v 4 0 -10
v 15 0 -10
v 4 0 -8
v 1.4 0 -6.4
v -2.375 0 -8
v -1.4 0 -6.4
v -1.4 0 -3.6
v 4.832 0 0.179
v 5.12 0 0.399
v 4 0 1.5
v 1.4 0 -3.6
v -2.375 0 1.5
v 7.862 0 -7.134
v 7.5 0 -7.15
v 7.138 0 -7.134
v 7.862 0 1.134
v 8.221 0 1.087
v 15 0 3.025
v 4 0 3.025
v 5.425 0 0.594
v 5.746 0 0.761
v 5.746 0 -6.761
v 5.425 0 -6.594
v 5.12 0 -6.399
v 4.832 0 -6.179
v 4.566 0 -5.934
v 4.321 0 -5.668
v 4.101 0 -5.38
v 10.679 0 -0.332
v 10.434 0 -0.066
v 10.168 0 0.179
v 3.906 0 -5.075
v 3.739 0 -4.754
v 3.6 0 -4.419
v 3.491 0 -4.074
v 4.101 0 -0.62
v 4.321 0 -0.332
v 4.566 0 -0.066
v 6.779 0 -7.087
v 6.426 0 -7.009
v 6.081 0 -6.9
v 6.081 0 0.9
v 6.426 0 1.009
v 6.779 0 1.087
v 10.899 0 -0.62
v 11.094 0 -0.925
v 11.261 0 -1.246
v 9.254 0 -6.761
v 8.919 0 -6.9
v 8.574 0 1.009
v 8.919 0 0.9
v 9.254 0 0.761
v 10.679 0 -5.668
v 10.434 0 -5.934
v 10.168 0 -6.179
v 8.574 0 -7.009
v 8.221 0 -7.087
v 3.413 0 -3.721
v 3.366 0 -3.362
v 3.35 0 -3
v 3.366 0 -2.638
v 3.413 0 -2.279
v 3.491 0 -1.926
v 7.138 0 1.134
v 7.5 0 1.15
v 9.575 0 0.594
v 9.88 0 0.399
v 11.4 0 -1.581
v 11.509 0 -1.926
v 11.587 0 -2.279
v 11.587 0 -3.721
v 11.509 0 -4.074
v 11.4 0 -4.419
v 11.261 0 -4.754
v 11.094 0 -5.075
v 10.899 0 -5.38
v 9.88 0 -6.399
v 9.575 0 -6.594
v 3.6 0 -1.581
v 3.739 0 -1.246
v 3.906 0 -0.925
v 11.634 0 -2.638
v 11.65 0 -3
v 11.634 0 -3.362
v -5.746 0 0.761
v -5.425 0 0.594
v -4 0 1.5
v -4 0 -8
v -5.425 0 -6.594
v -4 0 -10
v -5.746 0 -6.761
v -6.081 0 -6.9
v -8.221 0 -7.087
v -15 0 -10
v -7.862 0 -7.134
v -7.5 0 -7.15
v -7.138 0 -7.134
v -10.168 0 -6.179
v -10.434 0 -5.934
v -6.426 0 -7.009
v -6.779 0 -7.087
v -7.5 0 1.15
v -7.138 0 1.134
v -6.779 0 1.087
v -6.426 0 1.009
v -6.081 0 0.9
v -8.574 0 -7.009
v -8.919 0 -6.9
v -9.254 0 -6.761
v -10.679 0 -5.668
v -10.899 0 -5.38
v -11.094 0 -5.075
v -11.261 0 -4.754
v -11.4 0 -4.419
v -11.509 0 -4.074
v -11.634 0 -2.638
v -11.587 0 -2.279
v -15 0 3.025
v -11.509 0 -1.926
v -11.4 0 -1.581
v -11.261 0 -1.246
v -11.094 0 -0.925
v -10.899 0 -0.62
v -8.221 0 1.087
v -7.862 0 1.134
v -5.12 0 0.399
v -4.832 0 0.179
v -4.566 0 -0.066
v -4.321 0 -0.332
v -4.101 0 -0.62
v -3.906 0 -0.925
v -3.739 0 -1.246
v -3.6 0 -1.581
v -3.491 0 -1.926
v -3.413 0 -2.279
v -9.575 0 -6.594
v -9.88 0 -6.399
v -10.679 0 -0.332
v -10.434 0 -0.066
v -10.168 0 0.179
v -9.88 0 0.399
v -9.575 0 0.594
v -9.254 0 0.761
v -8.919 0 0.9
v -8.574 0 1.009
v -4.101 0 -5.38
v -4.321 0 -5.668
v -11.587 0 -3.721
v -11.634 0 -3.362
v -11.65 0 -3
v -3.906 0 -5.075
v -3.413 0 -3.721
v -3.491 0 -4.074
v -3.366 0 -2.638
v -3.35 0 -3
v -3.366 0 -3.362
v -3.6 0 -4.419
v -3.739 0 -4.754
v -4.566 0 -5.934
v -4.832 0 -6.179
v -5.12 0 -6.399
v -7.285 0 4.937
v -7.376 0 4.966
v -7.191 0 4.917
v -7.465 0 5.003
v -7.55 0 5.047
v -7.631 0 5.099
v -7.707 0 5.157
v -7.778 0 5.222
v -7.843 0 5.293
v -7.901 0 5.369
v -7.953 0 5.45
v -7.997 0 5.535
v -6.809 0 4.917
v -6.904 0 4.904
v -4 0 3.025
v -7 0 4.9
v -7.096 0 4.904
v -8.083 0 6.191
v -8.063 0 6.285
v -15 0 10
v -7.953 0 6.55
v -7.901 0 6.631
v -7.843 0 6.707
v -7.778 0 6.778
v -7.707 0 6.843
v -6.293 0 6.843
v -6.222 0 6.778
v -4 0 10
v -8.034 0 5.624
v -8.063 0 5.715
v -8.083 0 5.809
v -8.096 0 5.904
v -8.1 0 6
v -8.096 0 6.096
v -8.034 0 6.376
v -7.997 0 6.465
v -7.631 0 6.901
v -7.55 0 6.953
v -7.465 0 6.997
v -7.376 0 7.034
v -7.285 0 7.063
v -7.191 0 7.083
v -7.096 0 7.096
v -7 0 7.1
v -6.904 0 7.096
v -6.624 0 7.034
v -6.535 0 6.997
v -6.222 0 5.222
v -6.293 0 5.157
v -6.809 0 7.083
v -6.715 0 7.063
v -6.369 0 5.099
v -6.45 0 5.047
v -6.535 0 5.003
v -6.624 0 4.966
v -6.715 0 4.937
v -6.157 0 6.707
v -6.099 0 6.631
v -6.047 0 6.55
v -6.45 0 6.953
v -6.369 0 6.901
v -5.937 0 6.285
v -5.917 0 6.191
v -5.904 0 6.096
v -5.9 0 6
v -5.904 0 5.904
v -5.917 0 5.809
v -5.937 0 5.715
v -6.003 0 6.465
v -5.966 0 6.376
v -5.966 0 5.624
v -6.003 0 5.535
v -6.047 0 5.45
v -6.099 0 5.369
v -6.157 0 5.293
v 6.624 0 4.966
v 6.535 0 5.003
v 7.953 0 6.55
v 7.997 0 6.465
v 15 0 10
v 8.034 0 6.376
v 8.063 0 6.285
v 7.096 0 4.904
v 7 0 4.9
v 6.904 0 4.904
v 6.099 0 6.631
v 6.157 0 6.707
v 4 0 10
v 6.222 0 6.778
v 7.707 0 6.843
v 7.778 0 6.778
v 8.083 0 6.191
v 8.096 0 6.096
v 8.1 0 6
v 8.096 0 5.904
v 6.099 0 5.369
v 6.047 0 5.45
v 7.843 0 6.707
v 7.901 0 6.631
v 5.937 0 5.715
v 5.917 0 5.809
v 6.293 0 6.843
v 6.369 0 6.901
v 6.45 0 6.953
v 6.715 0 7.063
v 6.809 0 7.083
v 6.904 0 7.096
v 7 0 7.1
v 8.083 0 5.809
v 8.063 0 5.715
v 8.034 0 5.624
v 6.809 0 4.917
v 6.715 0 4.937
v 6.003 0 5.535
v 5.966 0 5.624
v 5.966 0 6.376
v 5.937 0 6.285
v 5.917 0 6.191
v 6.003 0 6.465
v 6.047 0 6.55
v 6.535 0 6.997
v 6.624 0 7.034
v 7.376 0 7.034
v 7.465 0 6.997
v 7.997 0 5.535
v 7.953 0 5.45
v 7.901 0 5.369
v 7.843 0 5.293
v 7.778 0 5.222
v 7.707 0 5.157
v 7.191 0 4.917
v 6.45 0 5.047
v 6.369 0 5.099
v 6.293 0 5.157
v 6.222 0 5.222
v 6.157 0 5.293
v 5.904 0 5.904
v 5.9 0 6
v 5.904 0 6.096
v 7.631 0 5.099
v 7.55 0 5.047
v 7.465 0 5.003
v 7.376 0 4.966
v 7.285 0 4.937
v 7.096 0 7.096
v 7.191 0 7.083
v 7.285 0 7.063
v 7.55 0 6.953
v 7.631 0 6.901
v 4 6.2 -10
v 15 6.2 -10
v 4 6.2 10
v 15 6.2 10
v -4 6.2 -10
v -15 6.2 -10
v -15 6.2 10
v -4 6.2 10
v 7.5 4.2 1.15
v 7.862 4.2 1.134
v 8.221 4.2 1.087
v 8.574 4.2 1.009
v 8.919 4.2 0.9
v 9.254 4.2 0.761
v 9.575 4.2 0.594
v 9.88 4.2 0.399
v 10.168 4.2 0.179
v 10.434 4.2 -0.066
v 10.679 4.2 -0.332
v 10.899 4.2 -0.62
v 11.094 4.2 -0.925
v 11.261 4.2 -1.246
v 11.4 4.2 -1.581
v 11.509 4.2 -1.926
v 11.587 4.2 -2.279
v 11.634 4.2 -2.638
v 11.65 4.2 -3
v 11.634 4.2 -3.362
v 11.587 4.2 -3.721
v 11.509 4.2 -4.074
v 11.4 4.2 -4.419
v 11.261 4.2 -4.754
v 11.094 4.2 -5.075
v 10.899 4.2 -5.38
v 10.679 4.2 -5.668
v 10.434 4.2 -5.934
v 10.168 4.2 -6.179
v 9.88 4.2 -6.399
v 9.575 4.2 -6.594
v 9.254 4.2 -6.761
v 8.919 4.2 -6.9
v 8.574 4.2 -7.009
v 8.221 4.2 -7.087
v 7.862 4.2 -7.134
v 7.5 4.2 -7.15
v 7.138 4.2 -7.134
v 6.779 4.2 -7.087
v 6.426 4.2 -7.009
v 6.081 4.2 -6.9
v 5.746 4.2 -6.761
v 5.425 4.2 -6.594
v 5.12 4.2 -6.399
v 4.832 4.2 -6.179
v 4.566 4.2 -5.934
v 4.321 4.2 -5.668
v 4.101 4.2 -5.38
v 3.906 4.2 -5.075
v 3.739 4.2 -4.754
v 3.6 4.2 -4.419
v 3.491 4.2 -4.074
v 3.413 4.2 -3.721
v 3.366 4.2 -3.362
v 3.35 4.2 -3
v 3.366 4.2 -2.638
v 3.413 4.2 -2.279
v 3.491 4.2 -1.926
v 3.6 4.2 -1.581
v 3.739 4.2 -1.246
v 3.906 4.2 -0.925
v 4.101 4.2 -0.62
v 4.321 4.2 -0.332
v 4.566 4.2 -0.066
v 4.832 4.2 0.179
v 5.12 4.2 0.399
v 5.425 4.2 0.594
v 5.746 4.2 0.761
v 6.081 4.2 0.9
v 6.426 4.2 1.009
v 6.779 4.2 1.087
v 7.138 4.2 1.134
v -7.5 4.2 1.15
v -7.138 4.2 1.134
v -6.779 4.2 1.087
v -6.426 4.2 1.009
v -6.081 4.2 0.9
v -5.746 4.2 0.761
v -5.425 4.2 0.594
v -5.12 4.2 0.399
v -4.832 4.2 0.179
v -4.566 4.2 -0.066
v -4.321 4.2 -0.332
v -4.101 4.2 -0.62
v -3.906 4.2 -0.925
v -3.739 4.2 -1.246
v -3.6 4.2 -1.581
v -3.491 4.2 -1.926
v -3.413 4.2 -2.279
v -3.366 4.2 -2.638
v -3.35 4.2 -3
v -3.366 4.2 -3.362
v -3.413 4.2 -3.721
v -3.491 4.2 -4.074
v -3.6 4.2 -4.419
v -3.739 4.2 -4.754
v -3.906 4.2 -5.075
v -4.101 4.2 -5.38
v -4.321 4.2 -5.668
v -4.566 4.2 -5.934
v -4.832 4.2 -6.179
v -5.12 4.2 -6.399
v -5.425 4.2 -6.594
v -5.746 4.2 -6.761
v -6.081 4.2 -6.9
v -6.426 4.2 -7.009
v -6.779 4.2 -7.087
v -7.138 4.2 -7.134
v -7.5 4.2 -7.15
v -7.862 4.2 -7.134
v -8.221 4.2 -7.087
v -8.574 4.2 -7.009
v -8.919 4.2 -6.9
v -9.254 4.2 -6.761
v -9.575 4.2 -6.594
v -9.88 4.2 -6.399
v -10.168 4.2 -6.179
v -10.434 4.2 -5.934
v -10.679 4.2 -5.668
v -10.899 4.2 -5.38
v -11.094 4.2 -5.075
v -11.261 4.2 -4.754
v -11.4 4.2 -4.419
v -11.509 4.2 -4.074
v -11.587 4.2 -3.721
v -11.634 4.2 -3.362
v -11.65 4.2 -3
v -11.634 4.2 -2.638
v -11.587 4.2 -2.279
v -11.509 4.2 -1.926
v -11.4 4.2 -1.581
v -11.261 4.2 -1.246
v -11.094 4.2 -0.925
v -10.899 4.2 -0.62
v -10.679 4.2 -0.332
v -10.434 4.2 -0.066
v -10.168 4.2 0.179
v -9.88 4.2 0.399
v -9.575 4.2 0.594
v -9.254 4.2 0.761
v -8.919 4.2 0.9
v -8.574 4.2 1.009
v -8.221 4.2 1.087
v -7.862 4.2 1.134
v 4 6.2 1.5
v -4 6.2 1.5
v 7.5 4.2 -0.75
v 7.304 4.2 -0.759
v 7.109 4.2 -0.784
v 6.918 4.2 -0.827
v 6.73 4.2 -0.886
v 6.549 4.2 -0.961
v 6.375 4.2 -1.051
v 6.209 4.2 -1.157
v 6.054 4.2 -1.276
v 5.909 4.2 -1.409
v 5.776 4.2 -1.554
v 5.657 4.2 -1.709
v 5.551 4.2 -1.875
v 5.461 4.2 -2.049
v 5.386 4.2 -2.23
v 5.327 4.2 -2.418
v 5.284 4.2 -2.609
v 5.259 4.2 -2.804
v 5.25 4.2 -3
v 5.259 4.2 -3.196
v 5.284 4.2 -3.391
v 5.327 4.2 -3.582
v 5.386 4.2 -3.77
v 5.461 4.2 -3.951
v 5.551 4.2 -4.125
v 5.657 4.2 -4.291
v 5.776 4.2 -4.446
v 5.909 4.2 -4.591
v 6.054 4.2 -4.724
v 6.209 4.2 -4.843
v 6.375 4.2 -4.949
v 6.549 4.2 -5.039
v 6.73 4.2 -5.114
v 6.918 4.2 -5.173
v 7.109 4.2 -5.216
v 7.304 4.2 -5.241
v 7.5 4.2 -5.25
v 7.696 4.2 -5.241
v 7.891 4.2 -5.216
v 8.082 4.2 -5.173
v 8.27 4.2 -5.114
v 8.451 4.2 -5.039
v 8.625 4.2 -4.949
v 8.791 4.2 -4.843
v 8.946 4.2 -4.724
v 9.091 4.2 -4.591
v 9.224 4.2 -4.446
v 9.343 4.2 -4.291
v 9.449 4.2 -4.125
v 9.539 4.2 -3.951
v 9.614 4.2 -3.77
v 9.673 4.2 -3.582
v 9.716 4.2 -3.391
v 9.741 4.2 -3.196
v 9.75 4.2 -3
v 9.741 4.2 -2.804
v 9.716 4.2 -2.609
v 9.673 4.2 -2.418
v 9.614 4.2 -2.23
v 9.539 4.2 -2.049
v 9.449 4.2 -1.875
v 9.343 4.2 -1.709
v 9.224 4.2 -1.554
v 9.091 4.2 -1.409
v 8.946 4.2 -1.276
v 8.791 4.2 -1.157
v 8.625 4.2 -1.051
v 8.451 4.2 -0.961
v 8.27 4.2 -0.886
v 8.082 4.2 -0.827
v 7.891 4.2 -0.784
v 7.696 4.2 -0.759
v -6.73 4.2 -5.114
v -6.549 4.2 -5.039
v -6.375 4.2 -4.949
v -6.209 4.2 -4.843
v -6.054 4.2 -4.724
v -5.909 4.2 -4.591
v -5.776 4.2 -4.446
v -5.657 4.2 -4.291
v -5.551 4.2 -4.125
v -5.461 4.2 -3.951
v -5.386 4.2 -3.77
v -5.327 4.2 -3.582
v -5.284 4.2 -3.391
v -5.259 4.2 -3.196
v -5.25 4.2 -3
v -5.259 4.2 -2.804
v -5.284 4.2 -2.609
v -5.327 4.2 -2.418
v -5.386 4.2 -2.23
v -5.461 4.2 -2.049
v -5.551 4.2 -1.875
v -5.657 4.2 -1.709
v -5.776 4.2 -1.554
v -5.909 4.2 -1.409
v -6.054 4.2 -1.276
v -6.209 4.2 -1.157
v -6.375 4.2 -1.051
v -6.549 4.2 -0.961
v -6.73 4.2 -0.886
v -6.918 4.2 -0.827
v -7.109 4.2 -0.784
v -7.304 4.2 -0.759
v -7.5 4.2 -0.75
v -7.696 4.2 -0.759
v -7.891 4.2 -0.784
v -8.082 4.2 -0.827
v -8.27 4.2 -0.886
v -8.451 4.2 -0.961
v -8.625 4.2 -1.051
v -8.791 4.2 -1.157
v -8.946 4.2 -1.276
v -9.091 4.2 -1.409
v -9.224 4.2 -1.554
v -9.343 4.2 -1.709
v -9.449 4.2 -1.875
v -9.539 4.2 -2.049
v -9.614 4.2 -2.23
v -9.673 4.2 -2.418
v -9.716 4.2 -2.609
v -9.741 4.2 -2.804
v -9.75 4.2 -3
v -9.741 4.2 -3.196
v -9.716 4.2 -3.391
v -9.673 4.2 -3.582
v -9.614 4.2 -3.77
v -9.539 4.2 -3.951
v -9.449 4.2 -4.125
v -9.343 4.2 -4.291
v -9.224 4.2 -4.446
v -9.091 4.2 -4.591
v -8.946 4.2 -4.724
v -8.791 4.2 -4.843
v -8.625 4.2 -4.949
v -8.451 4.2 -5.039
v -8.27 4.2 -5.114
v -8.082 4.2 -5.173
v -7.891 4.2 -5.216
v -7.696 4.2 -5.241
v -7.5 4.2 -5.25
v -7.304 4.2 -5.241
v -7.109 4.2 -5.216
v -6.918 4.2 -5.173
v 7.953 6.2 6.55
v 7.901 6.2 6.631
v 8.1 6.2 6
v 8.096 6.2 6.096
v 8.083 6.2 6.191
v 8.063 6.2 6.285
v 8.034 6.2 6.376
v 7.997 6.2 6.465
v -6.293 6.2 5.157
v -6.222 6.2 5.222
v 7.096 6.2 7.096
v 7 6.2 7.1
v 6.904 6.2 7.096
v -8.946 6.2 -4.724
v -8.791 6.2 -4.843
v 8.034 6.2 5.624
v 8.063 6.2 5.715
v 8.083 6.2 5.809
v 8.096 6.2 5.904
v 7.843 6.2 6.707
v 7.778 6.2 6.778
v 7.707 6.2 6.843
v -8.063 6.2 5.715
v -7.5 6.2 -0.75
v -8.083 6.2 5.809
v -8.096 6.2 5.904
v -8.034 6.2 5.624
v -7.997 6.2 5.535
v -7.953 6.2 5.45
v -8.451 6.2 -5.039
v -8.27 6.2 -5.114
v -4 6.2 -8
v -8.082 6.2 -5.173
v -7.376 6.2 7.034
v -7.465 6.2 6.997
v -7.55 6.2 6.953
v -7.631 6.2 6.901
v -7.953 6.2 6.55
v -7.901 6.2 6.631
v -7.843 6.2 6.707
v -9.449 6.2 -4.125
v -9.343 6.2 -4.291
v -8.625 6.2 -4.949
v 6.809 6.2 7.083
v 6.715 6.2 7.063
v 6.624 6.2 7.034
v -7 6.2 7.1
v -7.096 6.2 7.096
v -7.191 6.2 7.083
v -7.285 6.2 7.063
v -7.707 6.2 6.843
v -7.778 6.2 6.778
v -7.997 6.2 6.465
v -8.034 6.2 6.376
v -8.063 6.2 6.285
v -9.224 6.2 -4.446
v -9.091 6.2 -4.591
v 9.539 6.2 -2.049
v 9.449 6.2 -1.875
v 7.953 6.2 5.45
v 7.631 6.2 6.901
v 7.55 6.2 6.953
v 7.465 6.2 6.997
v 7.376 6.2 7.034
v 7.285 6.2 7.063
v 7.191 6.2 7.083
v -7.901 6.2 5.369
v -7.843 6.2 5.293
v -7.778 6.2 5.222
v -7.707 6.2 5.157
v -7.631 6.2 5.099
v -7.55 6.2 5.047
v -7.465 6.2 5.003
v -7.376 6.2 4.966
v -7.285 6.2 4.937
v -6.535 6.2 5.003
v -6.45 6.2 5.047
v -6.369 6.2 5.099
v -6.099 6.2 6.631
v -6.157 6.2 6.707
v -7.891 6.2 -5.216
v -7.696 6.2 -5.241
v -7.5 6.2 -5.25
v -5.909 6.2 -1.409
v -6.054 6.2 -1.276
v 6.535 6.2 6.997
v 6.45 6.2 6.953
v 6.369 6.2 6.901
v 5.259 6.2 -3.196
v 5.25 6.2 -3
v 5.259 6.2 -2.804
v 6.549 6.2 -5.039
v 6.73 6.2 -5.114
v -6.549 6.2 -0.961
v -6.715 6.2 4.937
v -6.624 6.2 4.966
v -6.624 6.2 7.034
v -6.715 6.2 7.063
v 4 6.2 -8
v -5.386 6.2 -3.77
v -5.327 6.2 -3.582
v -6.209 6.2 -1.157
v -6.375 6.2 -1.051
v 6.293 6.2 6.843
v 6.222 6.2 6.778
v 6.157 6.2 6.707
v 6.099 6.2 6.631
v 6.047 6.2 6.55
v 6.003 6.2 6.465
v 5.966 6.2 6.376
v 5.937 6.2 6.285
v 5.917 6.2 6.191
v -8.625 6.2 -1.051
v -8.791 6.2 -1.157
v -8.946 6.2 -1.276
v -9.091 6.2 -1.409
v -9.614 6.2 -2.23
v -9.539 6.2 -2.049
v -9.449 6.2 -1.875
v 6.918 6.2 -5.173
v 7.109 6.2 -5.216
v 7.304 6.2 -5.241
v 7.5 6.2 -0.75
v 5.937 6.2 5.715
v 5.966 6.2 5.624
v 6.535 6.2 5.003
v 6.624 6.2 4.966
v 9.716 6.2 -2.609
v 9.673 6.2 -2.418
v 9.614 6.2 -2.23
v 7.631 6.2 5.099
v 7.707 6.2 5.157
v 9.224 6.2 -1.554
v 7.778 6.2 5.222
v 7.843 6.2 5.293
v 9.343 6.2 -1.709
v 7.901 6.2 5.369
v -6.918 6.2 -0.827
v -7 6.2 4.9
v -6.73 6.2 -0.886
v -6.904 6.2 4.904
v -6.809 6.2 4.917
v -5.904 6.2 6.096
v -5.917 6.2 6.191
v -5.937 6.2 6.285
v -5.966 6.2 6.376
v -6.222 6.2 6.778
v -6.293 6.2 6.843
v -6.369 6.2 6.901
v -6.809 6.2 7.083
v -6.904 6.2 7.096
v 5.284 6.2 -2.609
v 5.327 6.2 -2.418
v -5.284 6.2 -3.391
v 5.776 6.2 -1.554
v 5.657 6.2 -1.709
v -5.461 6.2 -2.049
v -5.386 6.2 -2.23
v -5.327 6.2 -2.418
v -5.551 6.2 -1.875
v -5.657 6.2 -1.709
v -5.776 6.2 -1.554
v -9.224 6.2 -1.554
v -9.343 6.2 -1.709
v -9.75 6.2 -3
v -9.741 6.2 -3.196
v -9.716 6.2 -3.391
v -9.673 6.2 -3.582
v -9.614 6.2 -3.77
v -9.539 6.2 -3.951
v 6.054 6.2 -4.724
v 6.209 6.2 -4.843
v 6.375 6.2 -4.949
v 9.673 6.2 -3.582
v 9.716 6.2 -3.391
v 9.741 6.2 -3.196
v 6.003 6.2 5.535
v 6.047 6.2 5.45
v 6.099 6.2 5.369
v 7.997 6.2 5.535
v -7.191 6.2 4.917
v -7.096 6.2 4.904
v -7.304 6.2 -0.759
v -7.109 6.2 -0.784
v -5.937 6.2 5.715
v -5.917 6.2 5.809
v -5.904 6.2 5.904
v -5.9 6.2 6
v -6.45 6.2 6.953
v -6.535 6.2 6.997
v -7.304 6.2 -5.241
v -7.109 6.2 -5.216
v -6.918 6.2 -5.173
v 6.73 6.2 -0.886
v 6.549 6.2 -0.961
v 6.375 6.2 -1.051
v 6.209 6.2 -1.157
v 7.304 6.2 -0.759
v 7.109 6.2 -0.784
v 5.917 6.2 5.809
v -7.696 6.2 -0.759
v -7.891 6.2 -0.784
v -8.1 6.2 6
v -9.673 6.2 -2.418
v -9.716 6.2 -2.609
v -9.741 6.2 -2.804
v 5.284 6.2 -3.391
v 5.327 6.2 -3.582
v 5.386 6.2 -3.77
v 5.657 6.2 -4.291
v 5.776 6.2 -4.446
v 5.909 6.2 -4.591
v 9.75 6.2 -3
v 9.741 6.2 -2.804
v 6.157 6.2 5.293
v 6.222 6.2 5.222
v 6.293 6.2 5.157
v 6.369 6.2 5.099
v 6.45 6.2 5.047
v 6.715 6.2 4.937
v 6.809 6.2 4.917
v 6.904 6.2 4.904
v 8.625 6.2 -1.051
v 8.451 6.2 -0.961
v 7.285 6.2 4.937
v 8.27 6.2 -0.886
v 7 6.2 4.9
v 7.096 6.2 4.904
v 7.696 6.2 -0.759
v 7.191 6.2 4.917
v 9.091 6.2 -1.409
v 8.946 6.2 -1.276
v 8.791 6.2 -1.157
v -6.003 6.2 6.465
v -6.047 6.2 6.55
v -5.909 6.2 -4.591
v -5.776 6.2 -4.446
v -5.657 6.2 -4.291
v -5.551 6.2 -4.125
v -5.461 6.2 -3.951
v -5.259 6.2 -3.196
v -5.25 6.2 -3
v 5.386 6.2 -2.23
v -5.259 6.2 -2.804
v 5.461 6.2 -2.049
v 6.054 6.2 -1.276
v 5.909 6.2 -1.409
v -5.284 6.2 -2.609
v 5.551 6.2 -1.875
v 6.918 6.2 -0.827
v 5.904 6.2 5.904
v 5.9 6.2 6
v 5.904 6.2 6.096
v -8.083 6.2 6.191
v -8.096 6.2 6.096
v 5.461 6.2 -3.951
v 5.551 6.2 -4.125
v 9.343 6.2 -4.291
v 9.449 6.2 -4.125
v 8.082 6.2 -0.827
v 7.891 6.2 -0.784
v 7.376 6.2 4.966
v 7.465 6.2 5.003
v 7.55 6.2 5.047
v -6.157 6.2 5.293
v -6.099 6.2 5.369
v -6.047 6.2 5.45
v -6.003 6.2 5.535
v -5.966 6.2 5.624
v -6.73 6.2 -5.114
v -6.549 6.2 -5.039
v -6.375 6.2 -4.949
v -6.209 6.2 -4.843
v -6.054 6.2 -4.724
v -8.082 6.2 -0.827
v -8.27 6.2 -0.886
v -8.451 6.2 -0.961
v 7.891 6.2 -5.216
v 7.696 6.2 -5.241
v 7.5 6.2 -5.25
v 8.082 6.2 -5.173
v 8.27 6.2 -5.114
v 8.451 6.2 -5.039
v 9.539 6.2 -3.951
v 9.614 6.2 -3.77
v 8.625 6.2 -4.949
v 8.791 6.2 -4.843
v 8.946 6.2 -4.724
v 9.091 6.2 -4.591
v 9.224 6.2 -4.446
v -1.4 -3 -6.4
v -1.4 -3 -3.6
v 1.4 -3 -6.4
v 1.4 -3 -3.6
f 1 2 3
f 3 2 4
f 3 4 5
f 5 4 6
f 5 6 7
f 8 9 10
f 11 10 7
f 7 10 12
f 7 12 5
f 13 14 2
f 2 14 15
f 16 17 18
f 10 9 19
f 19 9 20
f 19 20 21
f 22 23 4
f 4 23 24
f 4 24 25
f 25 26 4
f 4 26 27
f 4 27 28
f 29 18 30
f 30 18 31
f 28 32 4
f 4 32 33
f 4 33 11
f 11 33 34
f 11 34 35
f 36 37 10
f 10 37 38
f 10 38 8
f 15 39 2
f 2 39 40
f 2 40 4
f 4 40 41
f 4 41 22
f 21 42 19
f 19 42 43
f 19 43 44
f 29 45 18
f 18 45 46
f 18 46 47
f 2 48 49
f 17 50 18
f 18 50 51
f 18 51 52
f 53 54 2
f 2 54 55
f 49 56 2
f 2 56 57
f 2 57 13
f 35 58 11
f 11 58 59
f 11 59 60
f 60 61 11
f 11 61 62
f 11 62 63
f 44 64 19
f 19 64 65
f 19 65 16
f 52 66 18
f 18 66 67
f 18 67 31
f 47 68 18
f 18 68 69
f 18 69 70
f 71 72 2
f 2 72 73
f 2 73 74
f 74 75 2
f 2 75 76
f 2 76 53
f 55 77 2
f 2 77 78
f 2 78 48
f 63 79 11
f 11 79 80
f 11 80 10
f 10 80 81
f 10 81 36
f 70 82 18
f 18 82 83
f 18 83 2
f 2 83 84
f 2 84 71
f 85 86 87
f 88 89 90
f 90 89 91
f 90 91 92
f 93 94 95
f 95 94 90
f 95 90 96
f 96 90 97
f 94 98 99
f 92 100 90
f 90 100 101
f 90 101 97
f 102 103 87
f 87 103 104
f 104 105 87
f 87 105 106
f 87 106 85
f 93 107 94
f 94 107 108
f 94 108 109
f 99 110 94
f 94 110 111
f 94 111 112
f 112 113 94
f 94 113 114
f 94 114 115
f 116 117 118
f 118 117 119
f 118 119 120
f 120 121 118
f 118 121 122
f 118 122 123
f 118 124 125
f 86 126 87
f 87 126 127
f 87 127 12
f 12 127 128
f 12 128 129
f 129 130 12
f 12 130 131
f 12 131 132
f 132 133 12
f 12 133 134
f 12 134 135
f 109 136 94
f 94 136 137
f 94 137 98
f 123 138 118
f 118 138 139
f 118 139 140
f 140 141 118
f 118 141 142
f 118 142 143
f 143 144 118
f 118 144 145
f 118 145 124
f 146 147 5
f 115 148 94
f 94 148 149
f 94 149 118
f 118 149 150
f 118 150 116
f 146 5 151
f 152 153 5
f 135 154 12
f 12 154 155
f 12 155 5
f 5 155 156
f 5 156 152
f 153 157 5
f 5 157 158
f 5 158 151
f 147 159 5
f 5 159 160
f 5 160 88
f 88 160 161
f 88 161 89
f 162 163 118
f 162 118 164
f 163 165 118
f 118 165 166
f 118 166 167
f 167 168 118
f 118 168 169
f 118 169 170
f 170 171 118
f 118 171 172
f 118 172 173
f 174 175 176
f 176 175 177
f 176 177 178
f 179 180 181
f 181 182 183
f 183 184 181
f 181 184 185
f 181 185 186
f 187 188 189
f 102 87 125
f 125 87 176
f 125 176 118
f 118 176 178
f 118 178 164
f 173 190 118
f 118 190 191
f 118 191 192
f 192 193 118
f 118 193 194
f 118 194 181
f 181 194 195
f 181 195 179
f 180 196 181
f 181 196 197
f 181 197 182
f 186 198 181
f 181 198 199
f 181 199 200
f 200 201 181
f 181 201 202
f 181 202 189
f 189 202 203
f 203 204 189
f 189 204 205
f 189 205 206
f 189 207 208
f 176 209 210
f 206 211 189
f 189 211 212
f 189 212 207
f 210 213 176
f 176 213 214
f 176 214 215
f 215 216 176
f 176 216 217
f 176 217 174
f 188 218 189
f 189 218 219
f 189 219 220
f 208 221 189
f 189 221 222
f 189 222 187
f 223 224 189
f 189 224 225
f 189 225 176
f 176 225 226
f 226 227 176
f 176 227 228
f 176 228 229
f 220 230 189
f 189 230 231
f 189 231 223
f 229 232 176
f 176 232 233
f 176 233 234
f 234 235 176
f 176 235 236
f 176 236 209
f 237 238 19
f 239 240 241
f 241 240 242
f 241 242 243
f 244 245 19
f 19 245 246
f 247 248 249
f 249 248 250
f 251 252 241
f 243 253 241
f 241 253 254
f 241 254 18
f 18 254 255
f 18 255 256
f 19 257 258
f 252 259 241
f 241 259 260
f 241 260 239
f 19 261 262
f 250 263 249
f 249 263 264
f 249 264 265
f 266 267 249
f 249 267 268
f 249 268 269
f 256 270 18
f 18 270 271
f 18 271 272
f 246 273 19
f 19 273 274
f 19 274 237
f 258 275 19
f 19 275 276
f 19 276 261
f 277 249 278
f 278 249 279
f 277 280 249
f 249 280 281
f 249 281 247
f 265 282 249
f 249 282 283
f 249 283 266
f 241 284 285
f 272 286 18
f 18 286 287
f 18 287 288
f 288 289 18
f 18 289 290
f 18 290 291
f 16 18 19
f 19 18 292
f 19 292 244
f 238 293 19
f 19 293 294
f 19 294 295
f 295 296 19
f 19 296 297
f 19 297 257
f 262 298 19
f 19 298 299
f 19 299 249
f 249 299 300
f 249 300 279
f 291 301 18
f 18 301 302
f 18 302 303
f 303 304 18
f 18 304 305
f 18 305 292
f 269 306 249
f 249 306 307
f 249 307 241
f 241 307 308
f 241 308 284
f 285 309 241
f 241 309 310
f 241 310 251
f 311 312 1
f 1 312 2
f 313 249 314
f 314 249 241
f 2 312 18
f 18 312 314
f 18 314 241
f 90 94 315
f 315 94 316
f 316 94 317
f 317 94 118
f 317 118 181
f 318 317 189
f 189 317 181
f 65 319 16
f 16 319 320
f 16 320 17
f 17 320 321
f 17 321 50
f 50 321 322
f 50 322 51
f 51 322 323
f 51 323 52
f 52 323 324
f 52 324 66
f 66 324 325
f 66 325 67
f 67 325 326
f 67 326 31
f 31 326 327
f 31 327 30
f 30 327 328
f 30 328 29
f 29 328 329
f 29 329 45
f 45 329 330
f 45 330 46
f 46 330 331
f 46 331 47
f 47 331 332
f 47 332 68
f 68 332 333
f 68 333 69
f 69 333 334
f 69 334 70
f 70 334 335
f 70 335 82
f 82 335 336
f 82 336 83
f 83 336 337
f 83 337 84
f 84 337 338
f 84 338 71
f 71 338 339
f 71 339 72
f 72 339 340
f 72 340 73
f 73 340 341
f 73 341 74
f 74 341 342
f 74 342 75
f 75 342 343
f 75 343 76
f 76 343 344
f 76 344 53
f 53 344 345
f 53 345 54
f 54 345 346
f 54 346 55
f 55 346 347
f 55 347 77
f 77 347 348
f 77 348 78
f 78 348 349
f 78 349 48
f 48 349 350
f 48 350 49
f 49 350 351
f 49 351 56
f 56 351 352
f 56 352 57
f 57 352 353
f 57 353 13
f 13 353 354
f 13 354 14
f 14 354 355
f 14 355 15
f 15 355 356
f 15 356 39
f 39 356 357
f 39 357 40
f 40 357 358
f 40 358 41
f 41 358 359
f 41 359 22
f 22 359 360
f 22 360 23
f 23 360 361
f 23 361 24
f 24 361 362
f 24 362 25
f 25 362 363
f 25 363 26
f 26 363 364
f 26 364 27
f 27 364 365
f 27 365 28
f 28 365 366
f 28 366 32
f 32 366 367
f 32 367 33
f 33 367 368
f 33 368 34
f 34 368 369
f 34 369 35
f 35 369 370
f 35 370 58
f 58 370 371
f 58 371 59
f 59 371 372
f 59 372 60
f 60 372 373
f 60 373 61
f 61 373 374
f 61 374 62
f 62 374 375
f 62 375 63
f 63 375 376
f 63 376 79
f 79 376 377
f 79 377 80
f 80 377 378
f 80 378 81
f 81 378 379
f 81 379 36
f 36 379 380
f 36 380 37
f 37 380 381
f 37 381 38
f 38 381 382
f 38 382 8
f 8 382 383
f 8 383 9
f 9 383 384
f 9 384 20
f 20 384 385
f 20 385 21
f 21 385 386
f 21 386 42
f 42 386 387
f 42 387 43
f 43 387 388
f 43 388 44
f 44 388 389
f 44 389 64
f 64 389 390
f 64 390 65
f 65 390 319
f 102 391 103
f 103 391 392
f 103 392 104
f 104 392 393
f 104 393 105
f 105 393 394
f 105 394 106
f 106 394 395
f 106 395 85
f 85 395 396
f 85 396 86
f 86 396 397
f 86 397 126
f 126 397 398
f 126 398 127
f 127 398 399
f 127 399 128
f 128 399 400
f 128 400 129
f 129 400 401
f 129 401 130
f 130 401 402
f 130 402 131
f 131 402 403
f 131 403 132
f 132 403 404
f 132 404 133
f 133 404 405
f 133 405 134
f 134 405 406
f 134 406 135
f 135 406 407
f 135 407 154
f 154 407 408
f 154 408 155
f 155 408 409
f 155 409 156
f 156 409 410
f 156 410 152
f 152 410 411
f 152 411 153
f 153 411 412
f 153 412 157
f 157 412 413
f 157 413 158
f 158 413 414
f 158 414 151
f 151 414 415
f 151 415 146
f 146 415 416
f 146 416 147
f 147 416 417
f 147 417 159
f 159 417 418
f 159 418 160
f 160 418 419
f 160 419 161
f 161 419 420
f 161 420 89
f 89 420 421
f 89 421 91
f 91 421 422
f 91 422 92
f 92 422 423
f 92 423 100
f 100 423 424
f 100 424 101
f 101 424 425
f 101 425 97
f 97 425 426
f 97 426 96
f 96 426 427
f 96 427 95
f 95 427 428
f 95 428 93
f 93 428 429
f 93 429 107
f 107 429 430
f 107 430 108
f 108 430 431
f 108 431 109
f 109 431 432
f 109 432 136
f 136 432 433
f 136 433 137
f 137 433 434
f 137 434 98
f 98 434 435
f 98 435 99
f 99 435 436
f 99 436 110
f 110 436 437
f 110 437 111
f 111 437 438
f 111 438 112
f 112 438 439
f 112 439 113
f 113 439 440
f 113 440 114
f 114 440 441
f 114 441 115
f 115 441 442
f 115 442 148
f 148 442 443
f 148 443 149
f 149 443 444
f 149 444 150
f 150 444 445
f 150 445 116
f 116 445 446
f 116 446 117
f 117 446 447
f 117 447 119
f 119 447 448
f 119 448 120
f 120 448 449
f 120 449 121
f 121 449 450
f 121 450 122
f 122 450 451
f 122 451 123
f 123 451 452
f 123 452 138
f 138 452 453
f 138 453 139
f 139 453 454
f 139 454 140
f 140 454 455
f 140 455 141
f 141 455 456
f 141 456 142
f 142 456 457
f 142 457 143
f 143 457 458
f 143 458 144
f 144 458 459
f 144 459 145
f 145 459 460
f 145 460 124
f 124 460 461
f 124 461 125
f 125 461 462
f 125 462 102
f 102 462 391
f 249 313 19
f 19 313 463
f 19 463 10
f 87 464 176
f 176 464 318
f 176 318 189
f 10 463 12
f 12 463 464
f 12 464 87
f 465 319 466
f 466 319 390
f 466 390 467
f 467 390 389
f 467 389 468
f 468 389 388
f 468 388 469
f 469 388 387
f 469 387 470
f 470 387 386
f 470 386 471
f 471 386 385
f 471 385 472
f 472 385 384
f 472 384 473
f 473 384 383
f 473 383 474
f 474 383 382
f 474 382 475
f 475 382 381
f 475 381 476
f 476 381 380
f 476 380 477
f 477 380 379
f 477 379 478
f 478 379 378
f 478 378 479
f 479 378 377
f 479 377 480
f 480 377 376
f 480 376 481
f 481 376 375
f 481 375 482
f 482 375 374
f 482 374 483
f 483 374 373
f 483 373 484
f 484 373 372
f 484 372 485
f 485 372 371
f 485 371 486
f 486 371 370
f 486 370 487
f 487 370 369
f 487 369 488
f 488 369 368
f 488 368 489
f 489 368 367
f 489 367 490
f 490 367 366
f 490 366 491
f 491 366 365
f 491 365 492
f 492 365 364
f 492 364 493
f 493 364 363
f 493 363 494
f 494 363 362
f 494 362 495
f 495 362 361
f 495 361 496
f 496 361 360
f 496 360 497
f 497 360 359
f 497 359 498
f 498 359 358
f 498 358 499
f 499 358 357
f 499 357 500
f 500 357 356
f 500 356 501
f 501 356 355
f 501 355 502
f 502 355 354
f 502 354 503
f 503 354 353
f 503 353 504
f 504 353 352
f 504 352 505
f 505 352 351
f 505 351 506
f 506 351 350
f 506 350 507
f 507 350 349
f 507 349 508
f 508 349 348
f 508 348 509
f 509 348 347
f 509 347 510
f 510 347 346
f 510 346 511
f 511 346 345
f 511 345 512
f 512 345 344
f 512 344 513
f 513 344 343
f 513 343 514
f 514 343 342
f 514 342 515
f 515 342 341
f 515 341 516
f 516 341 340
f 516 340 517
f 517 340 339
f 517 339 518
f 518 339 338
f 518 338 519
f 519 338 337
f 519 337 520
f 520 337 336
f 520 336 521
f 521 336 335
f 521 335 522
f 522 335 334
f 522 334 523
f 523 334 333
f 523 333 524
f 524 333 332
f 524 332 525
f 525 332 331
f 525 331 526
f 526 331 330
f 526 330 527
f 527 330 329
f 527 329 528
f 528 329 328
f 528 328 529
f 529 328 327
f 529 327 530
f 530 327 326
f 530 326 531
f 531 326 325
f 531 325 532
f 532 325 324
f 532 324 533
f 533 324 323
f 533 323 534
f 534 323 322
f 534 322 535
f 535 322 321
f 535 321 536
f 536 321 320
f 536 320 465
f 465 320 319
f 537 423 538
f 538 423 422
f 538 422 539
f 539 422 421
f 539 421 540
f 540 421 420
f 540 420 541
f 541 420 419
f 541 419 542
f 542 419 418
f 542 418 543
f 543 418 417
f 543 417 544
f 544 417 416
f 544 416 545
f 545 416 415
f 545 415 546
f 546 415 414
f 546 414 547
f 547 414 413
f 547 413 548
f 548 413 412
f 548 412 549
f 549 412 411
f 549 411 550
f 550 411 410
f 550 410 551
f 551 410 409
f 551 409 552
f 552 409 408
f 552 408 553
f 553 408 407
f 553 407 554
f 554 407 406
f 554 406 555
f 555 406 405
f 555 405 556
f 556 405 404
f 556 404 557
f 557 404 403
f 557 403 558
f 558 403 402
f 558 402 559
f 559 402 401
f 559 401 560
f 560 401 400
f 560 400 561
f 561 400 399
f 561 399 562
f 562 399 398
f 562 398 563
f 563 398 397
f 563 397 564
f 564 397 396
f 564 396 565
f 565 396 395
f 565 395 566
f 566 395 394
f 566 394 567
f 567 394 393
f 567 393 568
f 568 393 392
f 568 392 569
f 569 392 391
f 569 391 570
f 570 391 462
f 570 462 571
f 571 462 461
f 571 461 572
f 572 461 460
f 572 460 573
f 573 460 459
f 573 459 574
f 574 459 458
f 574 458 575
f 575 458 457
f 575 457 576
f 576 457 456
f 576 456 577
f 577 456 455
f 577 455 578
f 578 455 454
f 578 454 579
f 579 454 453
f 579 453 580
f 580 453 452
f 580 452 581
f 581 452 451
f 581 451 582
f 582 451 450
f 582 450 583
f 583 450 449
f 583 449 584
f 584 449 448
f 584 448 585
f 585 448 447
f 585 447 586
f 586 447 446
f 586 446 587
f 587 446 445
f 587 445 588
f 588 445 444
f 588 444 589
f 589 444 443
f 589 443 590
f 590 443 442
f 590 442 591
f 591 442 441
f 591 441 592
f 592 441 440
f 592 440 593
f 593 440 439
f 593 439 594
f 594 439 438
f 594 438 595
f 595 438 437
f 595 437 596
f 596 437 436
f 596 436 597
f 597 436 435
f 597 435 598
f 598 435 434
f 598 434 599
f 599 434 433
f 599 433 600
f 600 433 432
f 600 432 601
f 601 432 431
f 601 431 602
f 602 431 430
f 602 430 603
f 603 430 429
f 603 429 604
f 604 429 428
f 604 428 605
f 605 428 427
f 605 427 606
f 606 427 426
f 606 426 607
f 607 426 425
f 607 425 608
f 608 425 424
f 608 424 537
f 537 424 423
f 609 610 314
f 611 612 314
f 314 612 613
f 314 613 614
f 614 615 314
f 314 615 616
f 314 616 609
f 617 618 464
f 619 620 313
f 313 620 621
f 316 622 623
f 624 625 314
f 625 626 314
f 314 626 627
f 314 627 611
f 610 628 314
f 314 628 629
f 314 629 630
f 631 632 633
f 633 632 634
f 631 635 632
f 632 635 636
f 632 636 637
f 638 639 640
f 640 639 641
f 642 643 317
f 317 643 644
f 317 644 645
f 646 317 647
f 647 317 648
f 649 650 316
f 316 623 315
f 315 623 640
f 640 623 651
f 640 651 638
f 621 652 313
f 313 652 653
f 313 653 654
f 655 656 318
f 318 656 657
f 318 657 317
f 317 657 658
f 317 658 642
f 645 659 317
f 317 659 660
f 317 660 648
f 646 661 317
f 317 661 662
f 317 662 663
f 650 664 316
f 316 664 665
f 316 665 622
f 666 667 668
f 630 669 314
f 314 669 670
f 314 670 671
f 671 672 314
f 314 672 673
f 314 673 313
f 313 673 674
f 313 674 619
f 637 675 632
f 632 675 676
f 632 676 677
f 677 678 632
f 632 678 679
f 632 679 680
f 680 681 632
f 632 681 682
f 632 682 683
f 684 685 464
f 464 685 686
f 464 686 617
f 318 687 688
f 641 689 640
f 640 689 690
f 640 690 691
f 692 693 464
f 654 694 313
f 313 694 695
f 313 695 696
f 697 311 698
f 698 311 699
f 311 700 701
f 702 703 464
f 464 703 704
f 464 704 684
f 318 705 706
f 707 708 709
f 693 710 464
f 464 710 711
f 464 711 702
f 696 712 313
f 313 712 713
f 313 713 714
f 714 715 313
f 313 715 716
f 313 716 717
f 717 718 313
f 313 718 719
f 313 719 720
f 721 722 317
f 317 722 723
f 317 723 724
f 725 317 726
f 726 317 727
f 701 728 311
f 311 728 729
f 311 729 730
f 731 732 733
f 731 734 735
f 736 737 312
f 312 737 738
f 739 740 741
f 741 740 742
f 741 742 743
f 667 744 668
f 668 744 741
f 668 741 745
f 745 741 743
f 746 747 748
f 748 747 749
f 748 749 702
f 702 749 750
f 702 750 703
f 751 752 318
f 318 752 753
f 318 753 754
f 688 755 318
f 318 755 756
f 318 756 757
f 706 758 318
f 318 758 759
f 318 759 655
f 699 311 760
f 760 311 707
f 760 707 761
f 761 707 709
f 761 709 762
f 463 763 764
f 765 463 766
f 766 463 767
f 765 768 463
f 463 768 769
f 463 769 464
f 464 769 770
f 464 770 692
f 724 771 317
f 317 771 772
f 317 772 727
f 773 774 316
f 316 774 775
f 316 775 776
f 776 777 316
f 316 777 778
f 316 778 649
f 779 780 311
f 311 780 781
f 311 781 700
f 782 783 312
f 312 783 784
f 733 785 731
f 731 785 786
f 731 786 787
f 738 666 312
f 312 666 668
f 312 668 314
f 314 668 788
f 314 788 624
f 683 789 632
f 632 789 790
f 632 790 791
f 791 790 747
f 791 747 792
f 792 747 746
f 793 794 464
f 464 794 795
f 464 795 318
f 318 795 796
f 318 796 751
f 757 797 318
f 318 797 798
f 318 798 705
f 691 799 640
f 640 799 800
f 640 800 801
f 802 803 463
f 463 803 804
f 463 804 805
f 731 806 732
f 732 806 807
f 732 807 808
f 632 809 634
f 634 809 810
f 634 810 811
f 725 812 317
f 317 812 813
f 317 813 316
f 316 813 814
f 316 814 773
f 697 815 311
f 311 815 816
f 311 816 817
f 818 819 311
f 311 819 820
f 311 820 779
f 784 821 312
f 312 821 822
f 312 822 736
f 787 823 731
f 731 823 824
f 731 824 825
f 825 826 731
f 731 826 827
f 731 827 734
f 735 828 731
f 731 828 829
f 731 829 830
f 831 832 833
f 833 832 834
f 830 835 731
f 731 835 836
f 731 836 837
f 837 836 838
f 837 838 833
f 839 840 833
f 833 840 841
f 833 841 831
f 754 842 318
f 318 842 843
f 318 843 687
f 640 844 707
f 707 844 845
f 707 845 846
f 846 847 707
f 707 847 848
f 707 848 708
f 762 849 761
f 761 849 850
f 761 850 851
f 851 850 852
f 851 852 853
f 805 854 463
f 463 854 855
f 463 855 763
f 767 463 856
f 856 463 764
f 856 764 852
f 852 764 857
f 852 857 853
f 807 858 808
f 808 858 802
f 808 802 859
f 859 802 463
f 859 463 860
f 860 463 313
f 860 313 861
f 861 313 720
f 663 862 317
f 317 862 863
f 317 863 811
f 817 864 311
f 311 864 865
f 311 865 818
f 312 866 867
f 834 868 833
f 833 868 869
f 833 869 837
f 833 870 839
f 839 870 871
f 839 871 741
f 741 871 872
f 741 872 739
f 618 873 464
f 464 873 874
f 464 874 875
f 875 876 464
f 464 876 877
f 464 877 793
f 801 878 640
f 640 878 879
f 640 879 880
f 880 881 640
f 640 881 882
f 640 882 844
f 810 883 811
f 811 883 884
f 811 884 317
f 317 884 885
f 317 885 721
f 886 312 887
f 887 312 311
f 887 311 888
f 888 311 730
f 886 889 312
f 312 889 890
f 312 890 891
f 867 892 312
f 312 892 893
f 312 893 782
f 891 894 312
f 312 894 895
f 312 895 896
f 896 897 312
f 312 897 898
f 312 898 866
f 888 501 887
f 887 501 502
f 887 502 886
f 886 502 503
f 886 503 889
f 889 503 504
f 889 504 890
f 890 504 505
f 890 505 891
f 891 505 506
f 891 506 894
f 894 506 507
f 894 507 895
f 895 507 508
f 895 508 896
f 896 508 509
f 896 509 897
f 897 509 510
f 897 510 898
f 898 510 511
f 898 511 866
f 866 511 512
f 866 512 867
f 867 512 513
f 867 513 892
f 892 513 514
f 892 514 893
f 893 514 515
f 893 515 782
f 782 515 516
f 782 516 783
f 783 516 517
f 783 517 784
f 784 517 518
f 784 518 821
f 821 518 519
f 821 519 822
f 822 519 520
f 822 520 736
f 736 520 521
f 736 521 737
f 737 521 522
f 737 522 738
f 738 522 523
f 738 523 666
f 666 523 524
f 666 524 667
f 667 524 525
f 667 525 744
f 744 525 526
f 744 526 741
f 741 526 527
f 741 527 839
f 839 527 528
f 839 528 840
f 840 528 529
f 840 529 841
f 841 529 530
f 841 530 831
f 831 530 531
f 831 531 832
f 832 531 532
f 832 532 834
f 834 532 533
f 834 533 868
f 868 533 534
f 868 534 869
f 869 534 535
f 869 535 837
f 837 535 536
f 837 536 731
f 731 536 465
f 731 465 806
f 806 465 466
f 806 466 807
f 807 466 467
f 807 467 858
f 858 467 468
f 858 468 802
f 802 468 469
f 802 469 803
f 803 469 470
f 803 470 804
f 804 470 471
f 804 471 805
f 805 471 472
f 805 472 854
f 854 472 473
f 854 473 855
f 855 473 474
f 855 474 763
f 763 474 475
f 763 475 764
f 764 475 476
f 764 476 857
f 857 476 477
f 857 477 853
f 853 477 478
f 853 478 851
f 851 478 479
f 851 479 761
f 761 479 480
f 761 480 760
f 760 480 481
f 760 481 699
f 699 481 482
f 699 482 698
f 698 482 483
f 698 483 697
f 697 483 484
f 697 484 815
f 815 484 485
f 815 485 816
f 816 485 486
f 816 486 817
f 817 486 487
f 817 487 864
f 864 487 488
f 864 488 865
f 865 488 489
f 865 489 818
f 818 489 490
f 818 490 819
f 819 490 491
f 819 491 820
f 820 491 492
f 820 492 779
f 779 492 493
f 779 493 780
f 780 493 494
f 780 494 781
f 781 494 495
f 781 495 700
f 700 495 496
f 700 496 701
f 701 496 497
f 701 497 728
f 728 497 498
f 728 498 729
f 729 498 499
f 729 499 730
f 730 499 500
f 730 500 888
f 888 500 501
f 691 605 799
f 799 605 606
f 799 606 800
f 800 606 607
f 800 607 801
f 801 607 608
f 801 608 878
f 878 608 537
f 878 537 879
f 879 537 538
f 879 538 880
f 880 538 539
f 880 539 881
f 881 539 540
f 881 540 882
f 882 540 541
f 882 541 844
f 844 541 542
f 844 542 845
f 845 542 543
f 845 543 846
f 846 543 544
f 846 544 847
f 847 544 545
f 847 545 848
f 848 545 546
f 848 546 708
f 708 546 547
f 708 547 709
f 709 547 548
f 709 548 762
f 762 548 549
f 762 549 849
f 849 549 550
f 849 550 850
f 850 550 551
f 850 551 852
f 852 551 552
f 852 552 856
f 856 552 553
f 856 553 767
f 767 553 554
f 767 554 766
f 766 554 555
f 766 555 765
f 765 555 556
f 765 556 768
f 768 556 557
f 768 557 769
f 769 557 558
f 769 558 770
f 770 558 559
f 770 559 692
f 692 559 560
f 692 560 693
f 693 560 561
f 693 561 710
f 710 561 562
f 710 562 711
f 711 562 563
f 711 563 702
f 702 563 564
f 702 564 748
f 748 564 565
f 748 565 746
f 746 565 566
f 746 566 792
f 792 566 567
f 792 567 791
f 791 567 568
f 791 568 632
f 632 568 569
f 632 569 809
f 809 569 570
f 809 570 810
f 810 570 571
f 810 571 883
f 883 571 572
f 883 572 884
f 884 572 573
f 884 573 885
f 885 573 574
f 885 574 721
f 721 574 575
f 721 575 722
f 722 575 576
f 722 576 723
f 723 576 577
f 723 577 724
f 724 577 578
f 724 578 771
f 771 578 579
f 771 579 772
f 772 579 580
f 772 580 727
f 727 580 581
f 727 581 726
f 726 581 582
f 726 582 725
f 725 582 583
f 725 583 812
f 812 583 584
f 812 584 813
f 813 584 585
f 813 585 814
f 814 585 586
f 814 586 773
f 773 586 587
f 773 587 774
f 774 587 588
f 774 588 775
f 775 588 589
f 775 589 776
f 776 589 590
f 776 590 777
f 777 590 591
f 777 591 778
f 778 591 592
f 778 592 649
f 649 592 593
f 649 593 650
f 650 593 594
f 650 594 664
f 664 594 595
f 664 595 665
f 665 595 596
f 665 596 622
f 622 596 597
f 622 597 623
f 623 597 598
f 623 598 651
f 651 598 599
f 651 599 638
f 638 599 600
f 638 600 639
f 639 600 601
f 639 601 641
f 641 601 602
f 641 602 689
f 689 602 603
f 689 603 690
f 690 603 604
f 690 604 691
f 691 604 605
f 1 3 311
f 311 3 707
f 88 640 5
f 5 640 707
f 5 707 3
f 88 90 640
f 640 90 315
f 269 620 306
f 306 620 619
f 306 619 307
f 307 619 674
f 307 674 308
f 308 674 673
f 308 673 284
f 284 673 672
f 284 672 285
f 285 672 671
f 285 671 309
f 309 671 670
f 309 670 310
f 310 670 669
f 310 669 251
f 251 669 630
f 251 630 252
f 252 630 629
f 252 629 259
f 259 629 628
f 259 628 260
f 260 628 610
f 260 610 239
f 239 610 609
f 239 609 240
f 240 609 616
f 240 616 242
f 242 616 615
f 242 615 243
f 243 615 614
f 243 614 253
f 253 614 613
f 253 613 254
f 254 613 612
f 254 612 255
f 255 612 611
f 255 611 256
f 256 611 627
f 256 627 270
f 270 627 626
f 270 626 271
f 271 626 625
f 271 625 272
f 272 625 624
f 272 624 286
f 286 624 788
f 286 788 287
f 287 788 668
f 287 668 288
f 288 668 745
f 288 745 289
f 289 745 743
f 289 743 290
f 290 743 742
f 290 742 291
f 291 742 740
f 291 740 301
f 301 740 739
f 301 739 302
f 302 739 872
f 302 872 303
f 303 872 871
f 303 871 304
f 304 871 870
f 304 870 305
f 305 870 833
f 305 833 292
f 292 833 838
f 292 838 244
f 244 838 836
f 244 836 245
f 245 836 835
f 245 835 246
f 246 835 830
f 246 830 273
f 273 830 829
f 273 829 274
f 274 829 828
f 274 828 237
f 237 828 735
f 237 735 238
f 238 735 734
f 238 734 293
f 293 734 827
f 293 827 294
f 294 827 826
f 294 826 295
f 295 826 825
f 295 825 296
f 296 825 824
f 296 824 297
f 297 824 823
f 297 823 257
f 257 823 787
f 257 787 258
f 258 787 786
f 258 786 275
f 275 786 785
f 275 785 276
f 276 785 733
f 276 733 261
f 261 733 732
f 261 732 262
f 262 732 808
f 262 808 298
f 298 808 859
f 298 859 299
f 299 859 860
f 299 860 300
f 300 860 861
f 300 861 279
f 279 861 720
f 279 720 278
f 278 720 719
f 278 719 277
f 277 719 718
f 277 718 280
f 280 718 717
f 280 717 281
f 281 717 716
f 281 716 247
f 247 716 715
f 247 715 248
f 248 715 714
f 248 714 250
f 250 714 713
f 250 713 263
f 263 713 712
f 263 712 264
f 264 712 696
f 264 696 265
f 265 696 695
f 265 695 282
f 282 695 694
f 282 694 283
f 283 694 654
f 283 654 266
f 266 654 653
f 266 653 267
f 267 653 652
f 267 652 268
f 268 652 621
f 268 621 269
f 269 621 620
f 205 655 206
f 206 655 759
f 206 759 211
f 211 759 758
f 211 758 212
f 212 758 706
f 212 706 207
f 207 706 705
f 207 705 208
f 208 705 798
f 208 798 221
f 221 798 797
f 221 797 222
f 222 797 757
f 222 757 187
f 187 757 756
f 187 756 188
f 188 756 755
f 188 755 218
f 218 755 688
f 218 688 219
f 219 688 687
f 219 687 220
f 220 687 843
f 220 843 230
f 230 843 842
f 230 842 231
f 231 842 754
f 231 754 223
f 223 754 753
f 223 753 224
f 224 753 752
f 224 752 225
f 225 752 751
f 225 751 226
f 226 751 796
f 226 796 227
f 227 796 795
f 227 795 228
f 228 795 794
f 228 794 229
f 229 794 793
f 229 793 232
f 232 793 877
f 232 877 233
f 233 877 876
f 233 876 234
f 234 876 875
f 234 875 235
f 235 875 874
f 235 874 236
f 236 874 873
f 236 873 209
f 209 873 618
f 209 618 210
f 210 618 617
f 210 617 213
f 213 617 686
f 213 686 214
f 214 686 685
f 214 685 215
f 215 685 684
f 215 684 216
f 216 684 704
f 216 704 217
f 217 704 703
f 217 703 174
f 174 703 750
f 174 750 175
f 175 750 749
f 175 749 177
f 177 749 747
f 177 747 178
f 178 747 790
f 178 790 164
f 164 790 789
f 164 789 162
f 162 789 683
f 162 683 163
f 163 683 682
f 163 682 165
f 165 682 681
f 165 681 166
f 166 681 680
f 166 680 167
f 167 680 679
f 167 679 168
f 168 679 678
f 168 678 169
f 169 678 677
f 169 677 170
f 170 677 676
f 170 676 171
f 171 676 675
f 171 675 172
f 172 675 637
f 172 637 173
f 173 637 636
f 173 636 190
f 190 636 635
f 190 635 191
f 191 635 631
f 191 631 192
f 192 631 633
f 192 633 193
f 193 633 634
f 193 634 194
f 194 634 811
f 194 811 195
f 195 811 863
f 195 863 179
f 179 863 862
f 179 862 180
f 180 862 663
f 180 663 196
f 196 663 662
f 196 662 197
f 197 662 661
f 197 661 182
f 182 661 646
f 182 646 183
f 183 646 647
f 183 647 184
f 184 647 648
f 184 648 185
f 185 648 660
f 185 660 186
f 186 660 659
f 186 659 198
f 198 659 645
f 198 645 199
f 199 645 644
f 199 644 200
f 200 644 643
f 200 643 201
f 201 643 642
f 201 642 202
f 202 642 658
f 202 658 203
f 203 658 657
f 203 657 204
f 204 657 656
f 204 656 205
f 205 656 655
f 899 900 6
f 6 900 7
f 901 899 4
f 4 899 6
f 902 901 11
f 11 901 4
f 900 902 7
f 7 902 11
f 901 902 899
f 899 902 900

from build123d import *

# Parameters (mm, degrees)
SKETCH_1_W          = 30
SKETCH_1_H          = 20
EXTRUDE_1_DEPTH     = 4.2
SKETCH_2_R          = 4.15
CUT_EXTRUDE_1_DEPTH = 19.510537539
SKETCH_3_W          = 8
SKETCH_3_H          = 8.5
CUT_EXTRUDE_2_DEPTH = 19.510537539
EXTRUDE_2_DEPTH     = 2
SKETCH_5_R          = 2.25
CUT_EXTRUDE_3_DEPTH = 19.510537539
SKETCH_6_W          = 8
SKETCH_6_H          = 2
CUT_EXTRUDE_4_DEPTH = 20.064102392
SKETCH_7_R          = 1.1
CUT_EXTRUDE_5_DEPTH = 20.064102392
SKETCH_8_W          = 2.8
SKETCH_8_H          = 2.8
EXTRUDE_3_DEPTH     = 3


with BuildPart() as part:
    # 草图1 → 凸台-拉伸1 (new body)
    with BuildSketch(Plane(origin=(0, 0, 0), x_dir=(1, 0, 0), z_dir=(0, 1, 0))):
        Rectangle(SKETCH_1_W, SKETCH_1_H)
    extrude(amount=EXTRUDE_1_DEPTH)

    # 草图2 → 切除-拉伸1 (cut, through all)
    with BuildSketch(Plane(origin=(0, 4.2, 0), x_dir=(1, 0, 0), z_dir=(0, 1, 0))):
        with Locations(Location((-7.5, 3, 0), (0, 0, 270))):
            Circle(SKETCH_2_R)
        with Locations(Location((7.5, 3, 0), (0, 0, 270))):
            Circle(SKETCH_2_R)
    extrude(amount=-CUT_EXTRUDE_1_DEPTH, mode=Mode.SUBTRACT)

    # 草图3 → 切除-拉伸2 (cut, through all)
    with BuildSketch(Plane(origin=(0, 4.2, 0), x_dir=(1, 0, 0), z_dir=(0, 1, 0))):
        with Locations((0, -5.75)):
            Rectangle(SKETCH_3_W, SKETCH_3_H)
    extrude(amount=-CUT_EXTRUDE_2_DEPTH, mode=Mode.SUBTRACT)

    # 草图4 → 凸台-拉伸2 (add)
    with BuildSketch(Plane(origin=(0, 4.2, 0), x_dir=(1, 0, 0), z_dir=(0, 1, 0))):
        Polygon((-4, -1.5), (4, -1.5), (4, -10), (15, -10), (15, 10), (-15, 10), (-15, -10), (-4, -10), align=None)
    extrude(amount=EXTRUDE_2_DEPTH)

    # 草图5 → 切除-拉伸3 (cut, through all)
    with BuildSketch(Plane.XZ.offset(-4.2)):
        with Locations(Location((-7.5, -3, 0), (0, 0, 270))):
            Circle(SKETCH_5_R)
        with Locations(Location((7.5, -3, 0), (0, 0, 270))):
            Circle(SKETCH_5_R)
    extrude(amount=-CUT_EXTRUDE_3_DEPTH, mode=Mode.SUBTRACT)

    # 草图6 → 切除-拉伸4 (cut, through all)
    with BuildSketch(Plane(origin=(0, 6.2, 0), x_dir=(1, 0, 0), z_dir=(0, 1, 0))):
        with Locations((0, 9)):
            Rectangle(SKETCH_6_W, SKETCH_6_H)
    extrude(amount=-CUT_EXTRUDE_4_DEPTH, mode=Mode.SUBTRACT)

    # 草图7 → 切除-拉伸5 (cut, through all)
    with BuildSketch(Plane(origin=(0, 6.2, 0), x_dir=(1, 0, 0), z_dir=(0, 1, 0))):
        with Locations(Location((-7, -6, 0), (0, 0, 270))):
            Circle(SKETCH_7_R)
        with Locations(Location((7, -6, 0), (0, 0, 90))):
            Circle(SKETCH_7_R)
    extrude(amount=-CUT_EXTRUDE_5_DEPTH, mode=Mode.SUBTRACT)

    # 草图8 → 凸台-拉伸3 (add)
    with BuildSketch(Plane.XZ):
        with Locations((0, -5)):
            Rectangle(SKETCH_8_W, SKETCH_8_H)
    extrude(amount=EXTRUDE_3_DEPTH)


solid = part.part
